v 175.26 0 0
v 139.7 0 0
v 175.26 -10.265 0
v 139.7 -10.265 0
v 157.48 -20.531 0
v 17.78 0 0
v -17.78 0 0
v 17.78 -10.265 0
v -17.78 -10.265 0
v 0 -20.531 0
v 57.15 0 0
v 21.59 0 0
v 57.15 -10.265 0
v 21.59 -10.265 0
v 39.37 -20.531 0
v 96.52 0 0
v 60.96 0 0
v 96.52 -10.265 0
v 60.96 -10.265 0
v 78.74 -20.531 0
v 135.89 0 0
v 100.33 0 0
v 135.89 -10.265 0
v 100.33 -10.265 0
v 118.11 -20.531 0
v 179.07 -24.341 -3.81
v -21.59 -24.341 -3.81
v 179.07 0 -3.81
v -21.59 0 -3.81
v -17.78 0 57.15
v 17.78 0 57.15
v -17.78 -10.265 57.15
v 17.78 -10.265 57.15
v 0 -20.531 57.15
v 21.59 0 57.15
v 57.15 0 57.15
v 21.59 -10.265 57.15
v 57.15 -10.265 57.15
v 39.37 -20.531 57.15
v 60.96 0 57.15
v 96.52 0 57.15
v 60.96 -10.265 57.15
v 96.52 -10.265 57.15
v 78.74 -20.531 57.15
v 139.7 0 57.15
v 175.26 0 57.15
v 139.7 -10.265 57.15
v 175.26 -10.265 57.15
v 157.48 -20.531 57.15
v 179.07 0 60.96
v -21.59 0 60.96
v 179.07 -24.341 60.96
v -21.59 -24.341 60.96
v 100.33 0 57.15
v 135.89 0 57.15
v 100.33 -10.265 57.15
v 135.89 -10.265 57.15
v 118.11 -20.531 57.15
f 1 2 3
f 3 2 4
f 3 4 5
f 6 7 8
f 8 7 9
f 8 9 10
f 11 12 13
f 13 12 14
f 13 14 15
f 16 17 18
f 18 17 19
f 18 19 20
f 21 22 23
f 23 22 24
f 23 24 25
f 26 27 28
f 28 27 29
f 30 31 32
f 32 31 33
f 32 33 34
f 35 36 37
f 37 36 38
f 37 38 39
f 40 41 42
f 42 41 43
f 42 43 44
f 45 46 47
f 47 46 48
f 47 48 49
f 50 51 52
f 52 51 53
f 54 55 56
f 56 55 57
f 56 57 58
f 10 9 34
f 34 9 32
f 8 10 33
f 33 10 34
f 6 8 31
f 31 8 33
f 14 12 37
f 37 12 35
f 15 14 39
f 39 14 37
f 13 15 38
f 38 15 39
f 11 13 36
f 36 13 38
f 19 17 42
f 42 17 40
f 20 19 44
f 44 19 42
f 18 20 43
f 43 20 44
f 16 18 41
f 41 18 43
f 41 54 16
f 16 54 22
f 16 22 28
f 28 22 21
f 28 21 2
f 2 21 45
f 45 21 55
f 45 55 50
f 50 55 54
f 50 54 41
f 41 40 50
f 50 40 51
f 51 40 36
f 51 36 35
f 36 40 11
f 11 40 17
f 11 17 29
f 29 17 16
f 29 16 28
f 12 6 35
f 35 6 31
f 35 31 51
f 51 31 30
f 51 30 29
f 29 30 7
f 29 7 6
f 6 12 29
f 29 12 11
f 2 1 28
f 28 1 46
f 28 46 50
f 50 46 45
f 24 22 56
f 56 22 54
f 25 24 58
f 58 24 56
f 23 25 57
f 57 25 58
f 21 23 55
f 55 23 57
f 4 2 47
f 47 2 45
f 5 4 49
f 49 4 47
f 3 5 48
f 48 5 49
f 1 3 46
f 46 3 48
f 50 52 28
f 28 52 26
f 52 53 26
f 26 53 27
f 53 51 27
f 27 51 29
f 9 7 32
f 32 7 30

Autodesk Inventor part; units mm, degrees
ref_plane "YZ Plane" through (0, 0, 0) normal (1, 0, 0) x (0, 1, 0)
ref_plane "XZ Plane" through (0, 0, 0) normal (0, 1, 0) x (-1, 0, 0)
sketch "Sketch1" plane through (0, 0, 0) normal (0, 0, 1) x (1, 0, 0)
  line L0 (17.78, -10.2653) -> (0, -20.5306)
  line L1 (0, -20.5306) -> (-17.78, -10.2653)
  line L2 (-17.78, -10.2653) -> (-17.78, 10.2653)
  line L3 (-17.78, 10.2653) -> (0, 20.5306)
  line L4 (0, 20.5306) -> (17.78, 10.2653)
  line L5 (17.78, 10.2653) -> (17.78, -10.2653)
  line L6 (0, 0) -> (20.8337, 0) construction
  line L7 (57.15, -10.2653) -> (39.37, -20.5306)
  line L8 (39.37, -20.5306) -> (21.59, -10.2653)
  line L9 (21.59, -10.2653) -> (21.59, 10.2653)
  line L10 (21.59, 10.2653) -> (39.37, 20.5306)
  line L11 (39.37, 20.5306) -> (57.15, 10.2653)
  line L12 (57.15, 10.2653) -> (57.15, -10.2653)
  line L13 (39.37, 0) -> (60.2037, 0) construction
  line L14 (96.52, -10.2653) -> (78.74, -20.5306)
  line L15 (78.74, -20.5306) -> (60.96, -10.2653)
  line L16 (60.96, -10.2653) -> (60.96, 10.2653)
  line L17 (60.96, 10.2653) -> (78.74, 20.5306)
  line L18 (78.74, 20.5306) -> (96.52, 10.2653)
  line L19 (96.52, 10.2653) -> (96.52, -10.2653)
  line L20 (78.74, 0) -> (99.5737, 0) construction
  line L21 (135.89, -10.2653) -> (118.11, -20.5306)
  line L22 (118.11, -20.5306) -> (100.33, -10.2653)
  line L23 (100.33, -10.2653) -> (100.33, 10.2653)
  line L24 (100.33, 10.2653) -> (118.11, 20.5306)
  line L25 (118.11, 20.5306) -> (135.89, 10.2653)
  line L26 (135.89, 10.2653) -> (135.89, -10.2653)
  line L27 (118.11, 0) -> (138.9437, 0) construction
  line L28 (175.26, -10.2653) -> (157.48, -20.5306)
  line L29 (157.48, -20.5306) -> (139.7, -10.2653)
  line L30 (139.7, -10.2653) -> (139.7, 10.2653)
  line L31 (139.7, 10.2653) -> (157.48, 20.5306)
  line L32 (157.48, 20.5306) -> (175.26, 10.2653)
  line L33 (175.26, 10.2653) -> (175.26, -10.2653)
  line L34 (157.48, 0) -> (178.3137, 0) construction
  line L35 (-17.78, 0) -> (-21.59, 0) construction
  line L36 (0, -20.5306) -> (0, -24.3406) construction
  line L37 (0, -24.3406) -> (-21.59, -24.3406) construction
  line L38 (-21.59, -24.3406) -> (-21.59, 0) construction
  line L39 (157.48, -20.5306) -> (157.48, -24.3406) construction
  line L40 (175.26, 0) -> (179.07, 0) construction
  line L41 (179.07, 0) -> (179.07, -24.3406) construction
  line L42 (179.07, -24.3406) -> (157.48, -24.3406) construction
  line L43 (-17.78, 0) -> (-21.59, 0)
  line L44 (-21.59, -24.3406) -> (-21.59, 0)
  line L45 (-21.59, -24.3406) -> (179.07, -24.3406)
  line L46 (179.07, -24.3406) -> (179.07, 0)
  line L47 (179.07, 0) -> (175.26, 0)
  line L48 (17.78, 0) -> (21.59, 0)
  line L49 (57.15, 0) -> (60.96, 0)
  line L50 (96.52, 0) -> (100.33, 0)
  line L51 (135.89, 0) -> (139.7, 0)
  dimension "d0" = 35.56
  dimension "d3" = 39.37
  dimension "d8" = 3.81
  dimension "d9" = 3.81
  dimension "d10" = 3.81
  dimension "d11" = 3.81
extrude "Extrusion1" add sketch "Sketch1" along normal blind 57.15 contours L5 L48 L9 L8 L7 L12 L49 L16 L15 L14 L19 L50 L23 L22 L21 L26 L51 L30 L29 L28 L33 L47 L46 L45 L44 L43 L2 L1 L0
sketch "Sketch2" plane through (0, 0, 57.15) normal (0, 0, 1) x (1, 0, 0)
  line L0 (-17.78, -10.2653) -> (-17.78, 0) construction
  line L1 (-17.78, 0) -> (-21.59, 0) construction
  line L2 (-21.59, 0) -> (-21.59, -24.3406) construction
  line L3 (-21.59, -24.3406) -> (179.07, -24.3406) construction
  line L4 (179.07, -24.3406) -> (179.07, 0) construction
  line L5 (179.07, 0) -> (175.26, 0) construction
  line L6 (175.26, 0) -> (175.26, -10.2653) construction
  line L7 (175.26, -10.2653) -> (157.48, -20.5306) construction
  line L8 (157.48, -20.5306) -> (139.7, -10.2653) construction
  line L9 (139.7, -10.2653) -> (139.7, 0) construction
  line L10 (139.7, 0) -> (135.89, 0) construction
  line L11 (135.89, 0) -> (135.89, -10.2653) construction
  line L12 (135.89, -10.2653) -> (118.11, -20.5306) construction
  line L13 (118.11, -20.5306) -> (100.33, -10.2653) construction
  line L14 (100.33, -10.2653) -> (100.33, 0) construction
  line L15 (100.33, 0) -> (96.52, 0) construction
  line L16 (96.52, 0) -> (96.52, -10.2653) construction
  line L17 (96.52, -10.2653) -> (78.74, -20.5306) construction
  line L18 (78.74, -20.5306) -> (60.96, -10.2653) construction
  line L19 (60.96, -10.2653) -> (60.96, 0) construction
  line L20 (60.96, 0) -> (57.15, 0) construction
  line L21 (57.15, 0) -> (57.15, -10.2653) construction
  line L22 (57.15, -10.2653) -> (39.37, -20.5306) construction
  line L23 (39.37, -20.5306) -> (21.59, -10.2653) construction
  line L24 (21.59, -10.2653) -> (21.59, 0) construction
  line L25 (21.59, 0) -> (17.78, 0) construction
  line L26 (17.78, 0) -> (17.78, -10.2653) construction
  line L27 (17.78, -10.2653) -> (0, -20.5306) construction
  line L28 (0, -20.5306) -> (-17.78, -10.2653) construction
  line L29 (-21.59, -24.3406) -> (179.07, -24.3406)
  line L30 (179.07, -24.3406) -> (179.07, 0)
  line L31 (179.07, 0) -> (-21.59, 0)
  line L32 (-21.59, 0) -> (-21.59, -24.3406)
  point P0 (0, 0)
ref_plane "Work Plane1" through (0, 0, 28.575) normal (0, 0, 1) x (1, 0, 0)
extrude "Extrusion2" add sketch "Sketch2" along normal blind 3.81
mirror "Mirror1" about plane through (0, 0, 28.575) normal (0, 0, 1) of "Extrusion2"
properties part number "Bottom"
